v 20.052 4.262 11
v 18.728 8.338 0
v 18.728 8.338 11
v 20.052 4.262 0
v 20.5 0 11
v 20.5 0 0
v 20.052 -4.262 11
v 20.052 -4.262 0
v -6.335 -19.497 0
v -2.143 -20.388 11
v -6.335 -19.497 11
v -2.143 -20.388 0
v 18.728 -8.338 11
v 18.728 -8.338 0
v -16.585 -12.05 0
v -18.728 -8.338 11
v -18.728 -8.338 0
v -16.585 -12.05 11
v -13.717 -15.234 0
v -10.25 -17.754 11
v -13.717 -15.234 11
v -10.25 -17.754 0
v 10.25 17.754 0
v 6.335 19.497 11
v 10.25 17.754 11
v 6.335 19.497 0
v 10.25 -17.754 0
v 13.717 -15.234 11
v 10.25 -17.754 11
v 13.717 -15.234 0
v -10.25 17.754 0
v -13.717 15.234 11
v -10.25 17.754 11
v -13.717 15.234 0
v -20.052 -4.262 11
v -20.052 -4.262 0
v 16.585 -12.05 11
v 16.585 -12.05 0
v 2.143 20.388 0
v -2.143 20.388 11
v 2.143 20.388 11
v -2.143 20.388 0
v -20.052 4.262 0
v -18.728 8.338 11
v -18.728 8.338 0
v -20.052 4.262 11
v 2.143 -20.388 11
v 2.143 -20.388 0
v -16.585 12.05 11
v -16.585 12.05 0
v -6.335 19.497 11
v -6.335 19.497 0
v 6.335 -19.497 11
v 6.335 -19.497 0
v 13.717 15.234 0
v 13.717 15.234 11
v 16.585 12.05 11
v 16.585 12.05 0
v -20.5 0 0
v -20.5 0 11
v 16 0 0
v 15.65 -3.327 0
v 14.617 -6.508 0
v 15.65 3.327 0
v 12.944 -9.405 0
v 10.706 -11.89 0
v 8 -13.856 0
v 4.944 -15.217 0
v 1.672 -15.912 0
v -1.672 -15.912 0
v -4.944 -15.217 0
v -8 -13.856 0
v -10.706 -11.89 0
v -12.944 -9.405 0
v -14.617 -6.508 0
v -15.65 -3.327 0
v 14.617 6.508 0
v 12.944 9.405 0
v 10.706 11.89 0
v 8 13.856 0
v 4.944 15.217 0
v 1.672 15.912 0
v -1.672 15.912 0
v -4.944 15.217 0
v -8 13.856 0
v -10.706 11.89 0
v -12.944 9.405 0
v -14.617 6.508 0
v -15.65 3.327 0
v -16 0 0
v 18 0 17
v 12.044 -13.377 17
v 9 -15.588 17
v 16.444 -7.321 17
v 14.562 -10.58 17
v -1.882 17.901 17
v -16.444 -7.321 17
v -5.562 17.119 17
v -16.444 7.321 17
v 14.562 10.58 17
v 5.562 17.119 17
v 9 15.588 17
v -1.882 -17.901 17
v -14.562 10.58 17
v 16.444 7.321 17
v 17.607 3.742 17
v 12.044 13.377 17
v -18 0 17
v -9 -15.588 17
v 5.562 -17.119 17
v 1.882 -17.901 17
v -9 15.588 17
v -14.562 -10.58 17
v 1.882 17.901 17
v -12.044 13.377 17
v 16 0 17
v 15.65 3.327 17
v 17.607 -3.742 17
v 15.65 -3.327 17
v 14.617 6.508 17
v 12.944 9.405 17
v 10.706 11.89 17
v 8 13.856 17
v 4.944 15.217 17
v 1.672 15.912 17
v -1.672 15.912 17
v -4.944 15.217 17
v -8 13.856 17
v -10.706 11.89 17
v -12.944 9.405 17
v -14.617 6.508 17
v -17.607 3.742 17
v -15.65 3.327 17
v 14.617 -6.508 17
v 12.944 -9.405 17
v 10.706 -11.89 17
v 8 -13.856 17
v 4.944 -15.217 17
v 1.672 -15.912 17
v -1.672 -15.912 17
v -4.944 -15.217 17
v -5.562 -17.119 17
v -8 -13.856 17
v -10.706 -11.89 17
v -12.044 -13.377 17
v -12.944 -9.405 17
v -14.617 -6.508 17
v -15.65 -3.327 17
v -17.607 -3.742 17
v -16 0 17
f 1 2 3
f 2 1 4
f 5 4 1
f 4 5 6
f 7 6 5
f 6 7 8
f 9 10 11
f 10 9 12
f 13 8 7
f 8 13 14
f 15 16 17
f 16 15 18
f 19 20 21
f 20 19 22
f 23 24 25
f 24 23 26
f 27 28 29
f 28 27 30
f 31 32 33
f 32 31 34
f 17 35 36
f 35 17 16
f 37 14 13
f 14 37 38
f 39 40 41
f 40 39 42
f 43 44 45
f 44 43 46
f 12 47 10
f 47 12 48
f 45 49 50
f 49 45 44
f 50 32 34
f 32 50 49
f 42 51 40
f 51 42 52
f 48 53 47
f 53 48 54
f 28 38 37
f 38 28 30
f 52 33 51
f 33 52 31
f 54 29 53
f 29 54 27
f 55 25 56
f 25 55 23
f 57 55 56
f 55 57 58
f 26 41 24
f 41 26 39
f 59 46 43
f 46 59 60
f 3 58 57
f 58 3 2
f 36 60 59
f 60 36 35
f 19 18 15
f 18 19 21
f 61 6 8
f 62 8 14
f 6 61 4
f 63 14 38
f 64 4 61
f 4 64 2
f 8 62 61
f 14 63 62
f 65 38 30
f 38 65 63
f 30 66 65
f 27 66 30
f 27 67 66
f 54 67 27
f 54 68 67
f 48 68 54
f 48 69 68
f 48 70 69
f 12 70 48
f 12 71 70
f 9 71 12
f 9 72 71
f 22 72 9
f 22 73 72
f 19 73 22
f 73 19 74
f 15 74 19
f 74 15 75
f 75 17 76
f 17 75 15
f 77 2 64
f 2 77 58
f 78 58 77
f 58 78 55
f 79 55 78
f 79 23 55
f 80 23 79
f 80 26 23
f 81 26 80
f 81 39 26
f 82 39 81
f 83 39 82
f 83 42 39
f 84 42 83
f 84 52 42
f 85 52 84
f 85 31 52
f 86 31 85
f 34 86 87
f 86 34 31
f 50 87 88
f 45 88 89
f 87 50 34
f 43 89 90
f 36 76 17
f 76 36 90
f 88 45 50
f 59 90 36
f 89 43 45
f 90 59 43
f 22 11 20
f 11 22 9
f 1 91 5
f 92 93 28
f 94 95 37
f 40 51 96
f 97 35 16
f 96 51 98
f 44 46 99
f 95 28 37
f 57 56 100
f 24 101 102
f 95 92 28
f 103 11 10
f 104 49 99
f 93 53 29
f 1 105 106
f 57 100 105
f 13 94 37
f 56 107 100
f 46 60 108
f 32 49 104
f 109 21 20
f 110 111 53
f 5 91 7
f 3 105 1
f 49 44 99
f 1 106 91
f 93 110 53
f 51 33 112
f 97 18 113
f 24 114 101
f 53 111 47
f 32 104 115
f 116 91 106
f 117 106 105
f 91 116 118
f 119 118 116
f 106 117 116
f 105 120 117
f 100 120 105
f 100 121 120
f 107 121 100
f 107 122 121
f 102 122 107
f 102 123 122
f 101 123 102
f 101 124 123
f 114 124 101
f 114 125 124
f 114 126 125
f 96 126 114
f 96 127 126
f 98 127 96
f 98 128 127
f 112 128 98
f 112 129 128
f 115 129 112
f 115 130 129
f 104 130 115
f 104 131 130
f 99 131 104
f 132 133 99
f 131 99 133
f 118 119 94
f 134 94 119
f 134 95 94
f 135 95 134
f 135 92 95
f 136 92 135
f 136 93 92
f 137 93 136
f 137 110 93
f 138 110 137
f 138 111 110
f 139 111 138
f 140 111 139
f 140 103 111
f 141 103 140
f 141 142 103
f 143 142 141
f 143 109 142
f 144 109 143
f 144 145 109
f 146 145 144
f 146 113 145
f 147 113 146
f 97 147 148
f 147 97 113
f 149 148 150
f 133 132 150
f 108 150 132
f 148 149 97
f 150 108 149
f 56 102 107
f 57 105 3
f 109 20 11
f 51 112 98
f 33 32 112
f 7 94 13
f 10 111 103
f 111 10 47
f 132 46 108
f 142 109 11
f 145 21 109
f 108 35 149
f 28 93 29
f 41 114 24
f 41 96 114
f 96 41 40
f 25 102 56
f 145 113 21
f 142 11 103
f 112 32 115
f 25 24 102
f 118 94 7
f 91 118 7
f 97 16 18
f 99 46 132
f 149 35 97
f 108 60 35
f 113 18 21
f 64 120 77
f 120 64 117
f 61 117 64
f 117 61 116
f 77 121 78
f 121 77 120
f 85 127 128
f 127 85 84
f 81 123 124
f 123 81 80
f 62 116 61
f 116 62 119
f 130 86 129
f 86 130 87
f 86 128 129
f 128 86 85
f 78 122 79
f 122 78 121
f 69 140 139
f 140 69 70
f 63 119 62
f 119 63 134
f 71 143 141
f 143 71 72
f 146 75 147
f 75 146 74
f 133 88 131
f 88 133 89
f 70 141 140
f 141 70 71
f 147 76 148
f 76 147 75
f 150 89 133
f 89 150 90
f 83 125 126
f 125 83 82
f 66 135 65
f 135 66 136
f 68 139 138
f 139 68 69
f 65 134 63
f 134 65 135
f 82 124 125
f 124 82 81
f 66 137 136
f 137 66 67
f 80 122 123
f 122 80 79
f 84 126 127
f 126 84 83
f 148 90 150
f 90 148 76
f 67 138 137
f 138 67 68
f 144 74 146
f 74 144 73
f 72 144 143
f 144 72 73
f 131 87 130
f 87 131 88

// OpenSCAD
d1 = 36;
d2 = 41;

h1 = 6;
h2 = 11;

//$fs=0.5;
//$fa=1;
//
n_arms = 12;

module a() {
  cylinder(d=d2, h=h2);
  translate([0,0,h2]) cylinder(d1=d2, d2=d1, h=h1);
}

difference() {
  a();
  translate([0,0,-1]) cylinder(d=d1-4, h=h1+h2 +2);
}
